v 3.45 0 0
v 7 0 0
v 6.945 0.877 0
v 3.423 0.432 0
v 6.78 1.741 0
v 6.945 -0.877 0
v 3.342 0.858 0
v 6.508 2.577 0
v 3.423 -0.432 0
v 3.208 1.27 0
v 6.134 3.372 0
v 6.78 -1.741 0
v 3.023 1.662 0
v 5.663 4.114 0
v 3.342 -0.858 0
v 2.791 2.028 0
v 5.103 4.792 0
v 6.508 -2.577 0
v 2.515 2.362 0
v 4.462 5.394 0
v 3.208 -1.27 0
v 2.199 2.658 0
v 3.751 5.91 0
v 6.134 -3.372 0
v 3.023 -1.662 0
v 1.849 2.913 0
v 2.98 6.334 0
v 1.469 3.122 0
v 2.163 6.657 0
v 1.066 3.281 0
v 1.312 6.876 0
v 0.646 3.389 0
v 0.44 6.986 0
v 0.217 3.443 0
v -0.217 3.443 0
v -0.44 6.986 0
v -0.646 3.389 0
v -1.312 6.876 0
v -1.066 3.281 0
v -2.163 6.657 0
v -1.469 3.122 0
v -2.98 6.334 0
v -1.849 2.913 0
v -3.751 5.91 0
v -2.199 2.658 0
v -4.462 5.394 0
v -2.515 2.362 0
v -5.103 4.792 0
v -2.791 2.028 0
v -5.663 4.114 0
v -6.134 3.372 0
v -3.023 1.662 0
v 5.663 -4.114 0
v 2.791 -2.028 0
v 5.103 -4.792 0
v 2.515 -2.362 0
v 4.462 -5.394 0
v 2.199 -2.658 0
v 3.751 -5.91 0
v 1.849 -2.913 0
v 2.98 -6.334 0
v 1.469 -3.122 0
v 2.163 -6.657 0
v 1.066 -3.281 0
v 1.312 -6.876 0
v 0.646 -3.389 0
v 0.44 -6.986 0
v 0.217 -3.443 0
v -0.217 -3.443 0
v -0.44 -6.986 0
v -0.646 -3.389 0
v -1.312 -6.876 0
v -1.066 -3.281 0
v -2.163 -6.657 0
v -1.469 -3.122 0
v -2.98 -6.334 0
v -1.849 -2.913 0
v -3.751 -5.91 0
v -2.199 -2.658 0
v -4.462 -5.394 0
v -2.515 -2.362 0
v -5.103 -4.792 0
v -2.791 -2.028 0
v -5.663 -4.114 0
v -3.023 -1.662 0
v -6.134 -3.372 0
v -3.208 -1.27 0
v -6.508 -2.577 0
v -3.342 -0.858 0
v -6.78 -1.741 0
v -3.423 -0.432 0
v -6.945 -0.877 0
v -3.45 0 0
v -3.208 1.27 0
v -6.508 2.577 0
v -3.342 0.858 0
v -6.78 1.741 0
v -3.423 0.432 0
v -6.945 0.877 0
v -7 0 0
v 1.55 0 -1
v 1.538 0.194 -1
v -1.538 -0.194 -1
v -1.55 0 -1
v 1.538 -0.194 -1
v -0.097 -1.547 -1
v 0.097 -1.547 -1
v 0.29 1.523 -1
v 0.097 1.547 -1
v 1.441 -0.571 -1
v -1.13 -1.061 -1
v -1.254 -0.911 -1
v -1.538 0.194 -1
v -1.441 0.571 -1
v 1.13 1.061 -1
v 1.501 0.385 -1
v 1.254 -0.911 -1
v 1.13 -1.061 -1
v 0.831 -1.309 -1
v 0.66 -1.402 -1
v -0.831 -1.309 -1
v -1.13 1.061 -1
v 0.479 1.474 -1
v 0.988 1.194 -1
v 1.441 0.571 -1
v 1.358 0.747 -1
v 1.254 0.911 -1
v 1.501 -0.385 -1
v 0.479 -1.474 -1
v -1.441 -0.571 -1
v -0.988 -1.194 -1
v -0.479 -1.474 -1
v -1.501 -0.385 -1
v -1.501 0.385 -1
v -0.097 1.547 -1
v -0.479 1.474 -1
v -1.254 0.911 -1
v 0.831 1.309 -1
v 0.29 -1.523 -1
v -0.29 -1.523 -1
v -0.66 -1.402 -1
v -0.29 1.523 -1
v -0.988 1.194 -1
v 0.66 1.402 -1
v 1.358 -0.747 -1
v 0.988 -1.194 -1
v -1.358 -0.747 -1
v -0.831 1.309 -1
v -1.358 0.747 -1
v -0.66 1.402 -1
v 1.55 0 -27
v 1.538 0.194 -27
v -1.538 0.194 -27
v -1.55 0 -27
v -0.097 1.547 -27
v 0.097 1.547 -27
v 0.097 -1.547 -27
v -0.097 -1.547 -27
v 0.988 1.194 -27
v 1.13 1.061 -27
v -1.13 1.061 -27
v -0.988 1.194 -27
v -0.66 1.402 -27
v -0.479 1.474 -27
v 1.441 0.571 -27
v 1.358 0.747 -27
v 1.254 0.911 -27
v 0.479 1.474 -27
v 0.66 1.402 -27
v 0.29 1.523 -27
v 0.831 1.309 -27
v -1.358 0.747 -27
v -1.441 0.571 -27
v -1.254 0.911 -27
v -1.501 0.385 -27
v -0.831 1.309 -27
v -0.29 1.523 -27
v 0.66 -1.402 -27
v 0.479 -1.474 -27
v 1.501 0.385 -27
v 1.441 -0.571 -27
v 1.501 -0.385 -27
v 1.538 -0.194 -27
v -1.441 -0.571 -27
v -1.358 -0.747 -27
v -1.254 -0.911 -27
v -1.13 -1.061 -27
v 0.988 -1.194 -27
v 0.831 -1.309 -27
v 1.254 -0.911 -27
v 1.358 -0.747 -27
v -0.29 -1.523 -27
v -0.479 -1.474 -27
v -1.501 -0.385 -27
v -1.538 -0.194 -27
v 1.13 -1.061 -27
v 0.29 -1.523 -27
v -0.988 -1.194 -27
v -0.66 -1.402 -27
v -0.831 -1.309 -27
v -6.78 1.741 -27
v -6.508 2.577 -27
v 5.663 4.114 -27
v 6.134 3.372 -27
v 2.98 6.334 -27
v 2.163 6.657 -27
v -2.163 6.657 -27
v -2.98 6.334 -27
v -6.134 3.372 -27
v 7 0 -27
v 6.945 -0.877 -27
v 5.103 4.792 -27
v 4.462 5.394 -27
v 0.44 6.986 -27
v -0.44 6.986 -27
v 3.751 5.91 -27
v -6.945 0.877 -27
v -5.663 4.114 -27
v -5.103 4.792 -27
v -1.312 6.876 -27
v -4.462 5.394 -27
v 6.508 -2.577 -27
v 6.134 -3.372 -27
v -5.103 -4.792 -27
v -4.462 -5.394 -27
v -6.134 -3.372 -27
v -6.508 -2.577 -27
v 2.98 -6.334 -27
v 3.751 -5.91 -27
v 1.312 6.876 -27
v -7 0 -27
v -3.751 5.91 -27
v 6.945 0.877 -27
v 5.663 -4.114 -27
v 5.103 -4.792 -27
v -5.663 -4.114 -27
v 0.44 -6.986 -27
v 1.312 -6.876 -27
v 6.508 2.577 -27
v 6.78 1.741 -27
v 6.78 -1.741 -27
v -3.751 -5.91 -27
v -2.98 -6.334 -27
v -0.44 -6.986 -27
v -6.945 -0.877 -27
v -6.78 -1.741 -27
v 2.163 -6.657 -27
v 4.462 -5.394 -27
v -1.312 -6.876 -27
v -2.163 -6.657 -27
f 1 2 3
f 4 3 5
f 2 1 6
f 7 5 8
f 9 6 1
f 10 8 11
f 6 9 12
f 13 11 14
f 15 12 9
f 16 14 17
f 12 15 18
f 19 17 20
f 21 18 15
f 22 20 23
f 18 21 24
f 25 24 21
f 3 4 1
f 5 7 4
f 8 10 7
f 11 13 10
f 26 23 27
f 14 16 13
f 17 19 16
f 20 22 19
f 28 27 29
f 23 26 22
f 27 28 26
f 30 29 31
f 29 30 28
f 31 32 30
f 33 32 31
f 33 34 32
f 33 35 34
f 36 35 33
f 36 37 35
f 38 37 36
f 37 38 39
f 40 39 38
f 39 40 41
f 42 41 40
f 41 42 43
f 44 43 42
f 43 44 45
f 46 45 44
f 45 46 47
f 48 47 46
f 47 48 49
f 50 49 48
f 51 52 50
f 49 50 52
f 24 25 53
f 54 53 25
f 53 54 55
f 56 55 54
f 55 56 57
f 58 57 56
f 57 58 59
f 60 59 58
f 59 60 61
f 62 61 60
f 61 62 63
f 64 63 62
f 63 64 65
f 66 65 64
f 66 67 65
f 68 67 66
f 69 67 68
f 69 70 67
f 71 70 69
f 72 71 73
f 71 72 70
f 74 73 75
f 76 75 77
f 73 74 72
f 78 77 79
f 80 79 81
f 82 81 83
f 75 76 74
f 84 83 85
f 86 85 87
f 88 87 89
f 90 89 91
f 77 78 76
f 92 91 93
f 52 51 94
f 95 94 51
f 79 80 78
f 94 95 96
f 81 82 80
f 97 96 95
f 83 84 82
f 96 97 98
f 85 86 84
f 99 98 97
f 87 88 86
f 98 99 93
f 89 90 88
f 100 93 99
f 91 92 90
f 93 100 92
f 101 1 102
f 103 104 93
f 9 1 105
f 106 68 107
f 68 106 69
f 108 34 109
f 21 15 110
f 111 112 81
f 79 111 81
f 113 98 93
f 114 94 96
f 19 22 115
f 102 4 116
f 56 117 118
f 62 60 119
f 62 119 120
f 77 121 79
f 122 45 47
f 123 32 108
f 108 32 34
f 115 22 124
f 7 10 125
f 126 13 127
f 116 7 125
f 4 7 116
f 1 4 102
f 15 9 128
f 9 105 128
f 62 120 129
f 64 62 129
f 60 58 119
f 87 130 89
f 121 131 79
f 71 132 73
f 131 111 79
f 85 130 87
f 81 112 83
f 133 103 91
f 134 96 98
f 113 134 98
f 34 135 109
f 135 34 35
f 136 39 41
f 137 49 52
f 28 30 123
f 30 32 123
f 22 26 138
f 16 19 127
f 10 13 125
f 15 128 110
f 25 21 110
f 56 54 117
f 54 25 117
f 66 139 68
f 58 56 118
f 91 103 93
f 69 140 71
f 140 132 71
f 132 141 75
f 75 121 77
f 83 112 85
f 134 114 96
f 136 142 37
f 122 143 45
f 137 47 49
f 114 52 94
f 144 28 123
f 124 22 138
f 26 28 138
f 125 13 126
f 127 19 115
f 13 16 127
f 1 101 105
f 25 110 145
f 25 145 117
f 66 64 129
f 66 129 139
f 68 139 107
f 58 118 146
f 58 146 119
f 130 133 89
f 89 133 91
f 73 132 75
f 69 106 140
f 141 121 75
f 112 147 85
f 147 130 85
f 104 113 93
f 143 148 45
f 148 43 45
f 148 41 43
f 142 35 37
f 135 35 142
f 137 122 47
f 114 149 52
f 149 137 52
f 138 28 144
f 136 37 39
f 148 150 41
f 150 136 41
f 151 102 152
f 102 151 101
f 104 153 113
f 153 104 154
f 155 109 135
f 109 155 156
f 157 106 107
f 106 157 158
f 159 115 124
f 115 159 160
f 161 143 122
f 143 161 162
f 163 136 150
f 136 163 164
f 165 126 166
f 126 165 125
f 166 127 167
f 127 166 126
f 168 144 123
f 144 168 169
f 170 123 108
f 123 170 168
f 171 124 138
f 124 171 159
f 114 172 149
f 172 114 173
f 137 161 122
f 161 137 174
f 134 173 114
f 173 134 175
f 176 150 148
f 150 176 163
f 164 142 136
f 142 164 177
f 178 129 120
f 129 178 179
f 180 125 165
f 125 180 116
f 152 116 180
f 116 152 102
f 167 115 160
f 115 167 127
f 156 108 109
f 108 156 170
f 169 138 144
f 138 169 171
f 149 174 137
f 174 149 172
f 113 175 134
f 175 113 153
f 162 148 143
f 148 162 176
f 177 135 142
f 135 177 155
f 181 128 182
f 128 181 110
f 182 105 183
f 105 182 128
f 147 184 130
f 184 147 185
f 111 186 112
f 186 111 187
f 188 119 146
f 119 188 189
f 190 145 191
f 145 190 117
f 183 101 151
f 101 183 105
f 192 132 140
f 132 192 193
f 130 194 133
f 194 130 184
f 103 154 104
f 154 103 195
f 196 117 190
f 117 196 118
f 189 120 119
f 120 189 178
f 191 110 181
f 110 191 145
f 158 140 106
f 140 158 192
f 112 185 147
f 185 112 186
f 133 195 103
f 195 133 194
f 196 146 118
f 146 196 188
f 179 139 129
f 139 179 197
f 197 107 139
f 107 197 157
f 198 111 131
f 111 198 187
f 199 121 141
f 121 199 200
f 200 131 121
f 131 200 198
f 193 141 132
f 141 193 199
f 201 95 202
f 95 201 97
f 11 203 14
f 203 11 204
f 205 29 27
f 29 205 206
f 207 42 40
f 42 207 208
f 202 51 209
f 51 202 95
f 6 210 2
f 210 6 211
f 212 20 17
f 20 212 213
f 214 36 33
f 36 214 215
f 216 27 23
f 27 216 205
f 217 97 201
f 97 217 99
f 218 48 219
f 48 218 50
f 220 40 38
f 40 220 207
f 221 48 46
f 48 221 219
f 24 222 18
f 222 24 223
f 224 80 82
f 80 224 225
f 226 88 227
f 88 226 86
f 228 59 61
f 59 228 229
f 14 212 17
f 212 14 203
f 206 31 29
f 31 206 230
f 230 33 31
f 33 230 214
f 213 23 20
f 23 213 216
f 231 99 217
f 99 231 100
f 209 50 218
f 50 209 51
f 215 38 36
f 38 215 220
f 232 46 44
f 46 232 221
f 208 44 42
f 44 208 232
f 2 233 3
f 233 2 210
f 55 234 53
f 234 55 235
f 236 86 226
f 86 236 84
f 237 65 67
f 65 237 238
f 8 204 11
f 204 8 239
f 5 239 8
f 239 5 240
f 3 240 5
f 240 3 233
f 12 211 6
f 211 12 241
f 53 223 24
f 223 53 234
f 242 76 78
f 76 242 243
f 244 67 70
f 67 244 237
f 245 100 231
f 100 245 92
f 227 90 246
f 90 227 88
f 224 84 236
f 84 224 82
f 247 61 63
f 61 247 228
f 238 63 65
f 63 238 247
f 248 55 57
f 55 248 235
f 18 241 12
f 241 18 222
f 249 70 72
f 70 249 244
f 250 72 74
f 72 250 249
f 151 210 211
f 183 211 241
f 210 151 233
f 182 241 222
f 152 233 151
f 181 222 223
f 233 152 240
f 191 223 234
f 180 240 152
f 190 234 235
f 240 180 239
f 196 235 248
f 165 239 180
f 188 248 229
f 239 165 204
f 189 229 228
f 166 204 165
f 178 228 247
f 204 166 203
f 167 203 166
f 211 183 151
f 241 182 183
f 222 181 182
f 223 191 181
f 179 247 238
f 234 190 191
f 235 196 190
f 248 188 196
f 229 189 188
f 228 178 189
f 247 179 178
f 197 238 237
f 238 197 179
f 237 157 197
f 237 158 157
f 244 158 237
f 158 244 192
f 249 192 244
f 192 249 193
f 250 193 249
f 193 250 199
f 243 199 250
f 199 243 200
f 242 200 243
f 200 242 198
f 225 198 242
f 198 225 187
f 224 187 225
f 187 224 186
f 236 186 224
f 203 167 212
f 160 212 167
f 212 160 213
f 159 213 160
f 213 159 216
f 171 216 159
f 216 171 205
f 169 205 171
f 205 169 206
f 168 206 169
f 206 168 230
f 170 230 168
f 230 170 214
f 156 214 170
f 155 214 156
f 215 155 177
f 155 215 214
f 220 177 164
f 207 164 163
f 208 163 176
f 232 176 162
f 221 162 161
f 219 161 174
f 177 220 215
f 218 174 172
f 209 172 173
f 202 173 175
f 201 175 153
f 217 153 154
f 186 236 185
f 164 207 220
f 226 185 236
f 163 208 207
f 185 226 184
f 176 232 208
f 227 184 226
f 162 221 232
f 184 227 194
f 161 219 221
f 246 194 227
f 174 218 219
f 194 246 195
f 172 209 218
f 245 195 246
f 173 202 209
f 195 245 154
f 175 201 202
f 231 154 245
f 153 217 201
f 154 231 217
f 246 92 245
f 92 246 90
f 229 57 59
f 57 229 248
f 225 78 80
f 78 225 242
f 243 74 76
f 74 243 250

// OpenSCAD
$fn = 50;


difference() {
	union() {
		translate(v = [0, 0, -27.0000000000]) {
			cylinder(h = 27, r = 7.0000000000);
		}
	}
	union() {
		translate(v = [0, 0, 0]) {
			rotate(a = [0, 0, 0]) {
				difference() {
					union() {
						translate(v = [0, 0, -30.0000000000]) {
							cylinder(h = 30, r = 1.2500000000);
						}
						translate(v = [0, 0, -1.0000000000]) {
							cylinder(h = 1.0000000000, r1 = 1.5500000000, r2 = 3.4500000000);
						}
						translate(v = [0, 0, -30.0000000000]) {
							cylinder(h = 30, r = 1.5500000000);
						}
						translate(v = [0, 0, -30.0000000000]) {
							cylinder(h = 30, r = 1.2500000000);
						}
					}
					union();
				}
			}
		}
	}
}
